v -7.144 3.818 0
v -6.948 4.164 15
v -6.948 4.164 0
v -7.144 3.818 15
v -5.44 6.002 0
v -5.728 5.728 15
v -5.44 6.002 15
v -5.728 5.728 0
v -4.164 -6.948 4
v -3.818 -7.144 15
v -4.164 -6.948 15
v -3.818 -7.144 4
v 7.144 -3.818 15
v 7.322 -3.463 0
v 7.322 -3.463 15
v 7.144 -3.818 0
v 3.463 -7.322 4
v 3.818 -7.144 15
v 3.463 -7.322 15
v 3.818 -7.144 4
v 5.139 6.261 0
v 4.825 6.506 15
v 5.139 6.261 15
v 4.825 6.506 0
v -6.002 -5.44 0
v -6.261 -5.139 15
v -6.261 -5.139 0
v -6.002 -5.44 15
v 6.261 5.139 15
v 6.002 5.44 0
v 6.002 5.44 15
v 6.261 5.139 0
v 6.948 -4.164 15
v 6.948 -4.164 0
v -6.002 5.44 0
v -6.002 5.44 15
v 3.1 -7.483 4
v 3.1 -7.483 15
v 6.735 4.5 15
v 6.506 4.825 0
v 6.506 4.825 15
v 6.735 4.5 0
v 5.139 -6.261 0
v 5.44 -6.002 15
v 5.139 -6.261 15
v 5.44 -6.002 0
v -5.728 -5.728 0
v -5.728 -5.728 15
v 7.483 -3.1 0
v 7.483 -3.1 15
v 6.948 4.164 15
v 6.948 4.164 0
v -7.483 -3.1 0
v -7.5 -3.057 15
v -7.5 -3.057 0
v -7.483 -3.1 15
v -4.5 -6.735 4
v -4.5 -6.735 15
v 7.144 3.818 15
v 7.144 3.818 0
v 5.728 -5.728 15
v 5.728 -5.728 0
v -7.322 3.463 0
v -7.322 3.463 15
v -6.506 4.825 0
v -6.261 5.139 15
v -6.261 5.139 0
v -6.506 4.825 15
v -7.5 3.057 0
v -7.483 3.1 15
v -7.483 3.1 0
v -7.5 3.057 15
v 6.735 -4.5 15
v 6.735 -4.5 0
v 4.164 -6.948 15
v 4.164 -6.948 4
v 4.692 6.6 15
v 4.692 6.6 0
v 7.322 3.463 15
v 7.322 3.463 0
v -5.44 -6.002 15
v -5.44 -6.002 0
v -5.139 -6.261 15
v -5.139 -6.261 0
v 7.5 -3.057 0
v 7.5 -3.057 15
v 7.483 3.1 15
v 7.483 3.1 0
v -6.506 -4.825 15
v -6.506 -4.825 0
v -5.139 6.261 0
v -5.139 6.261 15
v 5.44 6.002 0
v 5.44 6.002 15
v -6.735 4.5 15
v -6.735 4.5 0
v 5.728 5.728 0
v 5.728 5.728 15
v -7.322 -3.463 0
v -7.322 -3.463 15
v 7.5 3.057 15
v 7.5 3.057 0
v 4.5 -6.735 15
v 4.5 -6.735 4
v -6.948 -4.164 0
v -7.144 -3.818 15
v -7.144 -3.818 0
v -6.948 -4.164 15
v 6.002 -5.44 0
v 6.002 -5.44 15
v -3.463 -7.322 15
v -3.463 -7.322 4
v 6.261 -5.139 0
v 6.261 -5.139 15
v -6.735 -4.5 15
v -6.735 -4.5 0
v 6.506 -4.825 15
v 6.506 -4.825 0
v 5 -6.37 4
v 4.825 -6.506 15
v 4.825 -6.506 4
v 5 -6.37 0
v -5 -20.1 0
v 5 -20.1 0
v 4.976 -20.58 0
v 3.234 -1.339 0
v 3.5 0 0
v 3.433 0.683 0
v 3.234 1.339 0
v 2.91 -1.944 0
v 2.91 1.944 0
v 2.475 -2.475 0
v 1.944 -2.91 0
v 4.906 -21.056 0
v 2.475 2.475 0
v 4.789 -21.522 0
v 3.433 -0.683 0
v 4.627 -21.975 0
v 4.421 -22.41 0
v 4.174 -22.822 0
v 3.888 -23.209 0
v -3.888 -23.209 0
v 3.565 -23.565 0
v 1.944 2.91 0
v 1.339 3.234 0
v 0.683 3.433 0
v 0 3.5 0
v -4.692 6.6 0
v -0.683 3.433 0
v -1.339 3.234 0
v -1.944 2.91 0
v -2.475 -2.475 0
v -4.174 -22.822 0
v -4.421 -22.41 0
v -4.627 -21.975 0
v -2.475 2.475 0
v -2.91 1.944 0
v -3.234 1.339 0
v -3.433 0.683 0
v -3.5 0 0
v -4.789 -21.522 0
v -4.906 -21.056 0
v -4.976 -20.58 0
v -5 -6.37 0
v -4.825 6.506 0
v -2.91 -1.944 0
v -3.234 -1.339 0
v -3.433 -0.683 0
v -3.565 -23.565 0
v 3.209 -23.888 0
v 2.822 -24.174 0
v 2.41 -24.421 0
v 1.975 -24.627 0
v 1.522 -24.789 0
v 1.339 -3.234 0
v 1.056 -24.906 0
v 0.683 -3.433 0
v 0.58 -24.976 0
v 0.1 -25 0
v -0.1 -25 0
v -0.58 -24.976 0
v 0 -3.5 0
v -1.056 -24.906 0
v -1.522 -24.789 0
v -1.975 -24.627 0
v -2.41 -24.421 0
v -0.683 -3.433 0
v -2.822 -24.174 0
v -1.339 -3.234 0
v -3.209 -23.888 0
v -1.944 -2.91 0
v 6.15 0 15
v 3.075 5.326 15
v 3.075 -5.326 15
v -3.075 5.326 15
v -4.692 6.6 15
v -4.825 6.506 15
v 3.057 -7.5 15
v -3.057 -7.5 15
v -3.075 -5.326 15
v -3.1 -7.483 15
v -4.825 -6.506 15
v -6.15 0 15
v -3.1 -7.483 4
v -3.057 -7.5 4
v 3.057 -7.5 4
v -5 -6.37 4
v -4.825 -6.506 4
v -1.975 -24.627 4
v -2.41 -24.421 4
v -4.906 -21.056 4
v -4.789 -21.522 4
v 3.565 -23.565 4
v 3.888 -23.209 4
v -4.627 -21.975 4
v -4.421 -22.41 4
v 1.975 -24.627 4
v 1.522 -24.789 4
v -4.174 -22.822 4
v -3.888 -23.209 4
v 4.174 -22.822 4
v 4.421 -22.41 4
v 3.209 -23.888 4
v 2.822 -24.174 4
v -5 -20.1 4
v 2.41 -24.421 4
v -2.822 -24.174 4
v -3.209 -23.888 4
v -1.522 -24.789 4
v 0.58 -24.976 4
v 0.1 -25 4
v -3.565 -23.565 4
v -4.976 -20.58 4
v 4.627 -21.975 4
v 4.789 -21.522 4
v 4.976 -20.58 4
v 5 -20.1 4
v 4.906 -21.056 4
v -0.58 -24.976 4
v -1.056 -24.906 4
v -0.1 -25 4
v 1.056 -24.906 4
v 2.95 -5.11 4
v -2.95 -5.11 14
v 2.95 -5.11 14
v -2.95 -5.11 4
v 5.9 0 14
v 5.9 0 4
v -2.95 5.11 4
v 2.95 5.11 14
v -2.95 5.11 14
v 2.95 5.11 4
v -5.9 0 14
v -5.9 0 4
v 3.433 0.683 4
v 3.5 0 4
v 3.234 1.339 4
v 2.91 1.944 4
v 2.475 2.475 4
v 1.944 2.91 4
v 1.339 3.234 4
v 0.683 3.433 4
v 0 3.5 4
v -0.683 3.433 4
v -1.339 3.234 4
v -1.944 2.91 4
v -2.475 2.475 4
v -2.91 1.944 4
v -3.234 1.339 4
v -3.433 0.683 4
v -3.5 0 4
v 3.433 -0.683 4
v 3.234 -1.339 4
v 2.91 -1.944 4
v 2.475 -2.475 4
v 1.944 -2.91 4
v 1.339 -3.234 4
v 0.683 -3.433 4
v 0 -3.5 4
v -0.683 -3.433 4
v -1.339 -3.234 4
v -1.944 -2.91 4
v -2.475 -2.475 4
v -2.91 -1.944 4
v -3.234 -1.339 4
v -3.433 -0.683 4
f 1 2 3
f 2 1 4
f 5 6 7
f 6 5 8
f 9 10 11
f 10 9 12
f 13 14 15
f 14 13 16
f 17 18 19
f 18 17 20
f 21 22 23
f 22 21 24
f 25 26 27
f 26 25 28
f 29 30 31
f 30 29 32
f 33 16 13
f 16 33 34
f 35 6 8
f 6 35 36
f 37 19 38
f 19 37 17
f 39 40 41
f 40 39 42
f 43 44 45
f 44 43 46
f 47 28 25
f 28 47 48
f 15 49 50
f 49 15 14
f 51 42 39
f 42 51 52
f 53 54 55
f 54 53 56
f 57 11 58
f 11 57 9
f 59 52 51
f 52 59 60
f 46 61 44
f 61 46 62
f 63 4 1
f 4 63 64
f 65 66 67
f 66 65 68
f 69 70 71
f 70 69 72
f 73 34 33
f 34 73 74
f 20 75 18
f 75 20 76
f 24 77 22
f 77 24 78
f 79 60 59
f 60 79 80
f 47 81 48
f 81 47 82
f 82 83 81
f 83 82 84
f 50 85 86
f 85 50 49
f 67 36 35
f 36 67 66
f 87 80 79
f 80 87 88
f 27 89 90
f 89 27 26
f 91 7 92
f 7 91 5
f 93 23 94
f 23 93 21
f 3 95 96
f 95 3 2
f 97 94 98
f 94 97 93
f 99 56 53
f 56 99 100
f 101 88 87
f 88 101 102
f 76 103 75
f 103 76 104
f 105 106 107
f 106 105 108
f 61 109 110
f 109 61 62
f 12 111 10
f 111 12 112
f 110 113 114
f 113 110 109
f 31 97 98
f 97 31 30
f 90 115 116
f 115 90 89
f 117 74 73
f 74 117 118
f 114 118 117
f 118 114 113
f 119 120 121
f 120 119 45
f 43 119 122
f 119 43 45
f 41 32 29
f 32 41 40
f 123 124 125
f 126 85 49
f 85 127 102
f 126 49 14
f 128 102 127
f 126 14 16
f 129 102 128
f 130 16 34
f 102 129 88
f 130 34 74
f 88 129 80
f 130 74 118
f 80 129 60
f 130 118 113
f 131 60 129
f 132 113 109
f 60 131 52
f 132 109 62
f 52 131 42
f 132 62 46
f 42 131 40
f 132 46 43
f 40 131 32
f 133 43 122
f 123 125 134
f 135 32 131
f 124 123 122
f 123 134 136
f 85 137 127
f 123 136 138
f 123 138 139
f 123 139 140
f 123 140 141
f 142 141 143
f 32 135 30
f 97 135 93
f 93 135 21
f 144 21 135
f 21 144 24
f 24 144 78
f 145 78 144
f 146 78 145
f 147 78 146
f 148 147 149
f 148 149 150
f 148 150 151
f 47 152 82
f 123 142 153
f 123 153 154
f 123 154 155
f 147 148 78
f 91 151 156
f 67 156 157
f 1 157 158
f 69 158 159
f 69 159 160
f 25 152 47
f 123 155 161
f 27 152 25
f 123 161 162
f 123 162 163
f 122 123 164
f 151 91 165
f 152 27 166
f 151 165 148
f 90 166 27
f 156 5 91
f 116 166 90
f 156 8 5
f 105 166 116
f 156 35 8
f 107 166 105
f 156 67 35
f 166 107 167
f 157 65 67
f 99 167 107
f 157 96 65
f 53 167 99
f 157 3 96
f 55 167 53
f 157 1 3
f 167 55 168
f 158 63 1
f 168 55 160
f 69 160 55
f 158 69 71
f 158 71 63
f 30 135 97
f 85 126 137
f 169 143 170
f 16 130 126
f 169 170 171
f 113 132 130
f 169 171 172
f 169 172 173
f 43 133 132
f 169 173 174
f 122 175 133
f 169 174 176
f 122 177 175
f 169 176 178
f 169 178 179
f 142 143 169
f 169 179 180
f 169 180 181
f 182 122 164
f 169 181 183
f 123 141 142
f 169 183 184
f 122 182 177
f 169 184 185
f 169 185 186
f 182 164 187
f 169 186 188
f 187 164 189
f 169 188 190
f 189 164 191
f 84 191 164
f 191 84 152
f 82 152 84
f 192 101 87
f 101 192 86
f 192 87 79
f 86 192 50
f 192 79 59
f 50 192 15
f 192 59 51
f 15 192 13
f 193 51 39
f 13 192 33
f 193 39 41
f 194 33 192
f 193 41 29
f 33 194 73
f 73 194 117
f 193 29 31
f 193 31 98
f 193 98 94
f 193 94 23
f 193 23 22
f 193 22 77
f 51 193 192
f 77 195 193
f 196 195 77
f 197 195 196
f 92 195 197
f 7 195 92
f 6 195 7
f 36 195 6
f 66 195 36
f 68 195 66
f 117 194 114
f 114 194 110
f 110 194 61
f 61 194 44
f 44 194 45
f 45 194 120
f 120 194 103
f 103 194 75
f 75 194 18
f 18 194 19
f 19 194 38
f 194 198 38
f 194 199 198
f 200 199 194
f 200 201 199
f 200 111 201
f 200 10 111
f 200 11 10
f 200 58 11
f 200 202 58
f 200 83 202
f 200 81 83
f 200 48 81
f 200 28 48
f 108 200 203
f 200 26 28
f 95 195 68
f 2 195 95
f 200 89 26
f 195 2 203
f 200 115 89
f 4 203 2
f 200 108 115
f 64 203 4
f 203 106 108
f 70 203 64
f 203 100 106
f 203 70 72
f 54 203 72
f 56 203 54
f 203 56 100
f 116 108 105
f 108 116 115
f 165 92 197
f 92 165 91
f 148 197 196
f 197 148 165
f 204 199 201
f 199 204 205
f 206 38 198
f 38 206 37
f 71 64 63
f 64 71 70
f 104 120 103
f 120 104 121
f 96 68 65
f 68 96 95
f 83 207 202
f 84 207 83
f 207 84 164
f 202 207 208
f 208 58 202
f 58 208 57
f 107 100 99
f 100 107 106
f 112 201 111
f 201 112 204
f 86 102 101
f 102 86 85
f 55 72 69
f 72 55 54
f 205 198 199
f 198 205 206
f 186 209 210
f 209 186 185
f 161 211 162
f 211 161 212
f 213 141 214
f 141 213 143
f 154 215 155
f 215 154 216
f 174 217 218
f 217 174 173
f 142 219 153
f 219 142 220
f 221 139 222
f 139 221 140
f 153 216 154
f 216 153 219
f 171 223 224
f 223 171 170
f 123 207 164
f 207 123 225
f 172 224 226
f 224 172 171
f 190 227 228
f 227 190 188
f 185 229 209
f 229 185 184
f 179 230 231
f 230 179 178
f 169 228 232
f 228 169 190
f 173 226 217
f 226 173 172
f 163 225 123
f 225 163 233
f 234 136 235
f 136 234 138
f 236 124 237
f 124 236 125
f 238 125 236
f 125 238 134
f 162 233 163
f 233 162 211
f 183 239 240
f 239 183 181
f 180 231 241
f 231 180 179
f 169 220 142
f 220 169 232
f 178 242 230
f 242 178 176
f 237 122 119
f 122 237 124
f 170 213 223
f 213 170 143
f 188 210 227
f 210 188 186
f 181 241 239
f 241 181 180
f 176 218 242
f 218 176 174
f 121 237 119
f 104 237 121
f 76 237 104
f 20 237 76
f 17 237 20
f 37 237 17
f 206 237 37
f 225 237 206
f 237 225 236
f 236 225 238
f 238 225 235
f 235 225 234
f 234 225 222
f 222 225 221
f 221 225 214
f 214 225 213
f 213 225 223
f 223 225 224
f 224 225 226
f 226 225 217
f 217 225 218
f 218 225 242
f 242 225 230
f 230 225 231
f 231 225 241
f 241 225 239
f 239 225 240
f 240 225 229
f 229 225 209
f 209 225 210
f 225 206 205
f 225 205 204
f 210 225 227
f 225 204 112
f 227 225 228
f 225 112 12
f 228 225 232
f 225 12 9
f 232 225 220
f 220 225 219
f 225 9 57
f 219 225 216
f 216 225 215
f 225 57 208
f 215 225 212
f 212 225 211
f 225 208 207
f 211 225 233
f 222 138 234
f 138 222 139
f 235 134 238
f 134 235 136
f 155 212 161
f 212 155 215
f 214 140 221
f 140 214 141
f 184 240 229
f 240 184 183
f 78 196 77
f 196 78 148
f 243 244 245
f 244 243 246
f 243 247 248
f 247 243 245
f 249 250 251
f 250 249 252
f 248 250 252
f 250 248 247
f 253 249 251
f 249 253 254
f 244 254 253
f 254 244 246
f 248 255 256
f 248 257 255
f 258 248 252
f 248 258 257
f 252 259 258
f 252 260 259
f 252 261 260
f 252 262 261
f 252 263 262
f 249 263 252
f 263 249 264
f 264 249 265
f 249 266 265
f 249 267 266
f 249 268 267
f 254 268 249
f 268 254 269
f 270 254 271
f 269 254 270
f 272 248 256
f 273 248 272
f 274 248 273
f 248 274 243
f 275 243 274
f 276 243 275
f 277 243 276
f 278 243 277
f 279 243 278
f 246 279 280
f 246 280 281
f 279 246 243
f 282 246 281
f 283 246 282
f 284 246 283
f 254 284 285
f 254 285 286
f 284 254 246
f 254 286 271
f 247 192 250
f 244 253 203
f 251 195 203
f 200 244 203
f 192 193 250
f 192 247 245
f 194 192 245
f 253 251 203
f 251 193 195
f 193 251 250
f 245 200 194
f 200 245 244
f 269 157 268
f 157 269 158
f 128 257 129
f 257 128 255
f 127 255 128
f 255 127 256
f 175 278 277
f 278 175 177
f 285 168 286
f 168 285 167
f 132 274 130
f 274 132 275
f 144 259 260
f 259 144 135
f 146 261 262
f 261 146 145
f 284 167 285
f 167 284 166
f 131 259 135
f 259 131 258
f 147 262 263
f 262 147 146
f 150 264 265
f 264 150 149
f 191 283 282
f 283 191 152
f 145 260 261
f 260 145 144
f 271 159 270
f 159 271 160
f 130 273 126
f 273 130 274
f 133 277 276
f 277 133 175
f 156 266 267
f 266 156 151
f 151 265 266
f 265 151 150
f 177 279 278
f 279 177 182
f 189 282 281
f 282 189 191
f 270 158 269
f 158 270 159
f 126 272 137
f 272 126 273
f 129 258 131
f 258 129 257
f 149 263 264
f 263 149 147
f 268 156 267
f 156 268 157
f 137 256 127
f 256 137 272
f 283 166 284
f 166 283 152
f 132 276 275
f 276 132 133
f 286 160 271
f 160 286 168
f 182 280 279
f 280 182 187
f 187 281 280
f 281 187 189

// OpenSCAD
//cylinder(d=12,h=15,$fn=32);
difference() {union(){
translate([0,0,0])intersection() {
cylinder(d=16.2,$fn=128,h=15);
    cube_center([15,15,100]);
}
    translate([0,-12.5,0])
    cube_center([10,25,4],r=4.9);
}
translate([0,11.6,0])
cube_center([80,10,100]);
    
translate([0,0,4]) {
    cylinder(d=11.8,$fn=6,h=16);
}
    
translate([0,0,14])
    cylinder(d1=11.8,d2=12.3,$fn=6,h=1);
    
    translate([0,0,0])
    cylinder(d=7,$fn=32,h=100);
}


module cube_center(dims,r=0,$fn=64) {
    if(r==0) {
        translate([-dims[0]/2, -dims[1]/2, 0])
        cube(dims);
    } else {
        minkowski() {
            translate([-(dims[0]-2*r)/2, -(dims[1]-2*r)/2, 0])
            cube([dims[0]-2*r,dims[1]-2*r,dims[2]]);
            cylinder(r=r,$fn=$fn,h=0.0001);
        }
    }
}
